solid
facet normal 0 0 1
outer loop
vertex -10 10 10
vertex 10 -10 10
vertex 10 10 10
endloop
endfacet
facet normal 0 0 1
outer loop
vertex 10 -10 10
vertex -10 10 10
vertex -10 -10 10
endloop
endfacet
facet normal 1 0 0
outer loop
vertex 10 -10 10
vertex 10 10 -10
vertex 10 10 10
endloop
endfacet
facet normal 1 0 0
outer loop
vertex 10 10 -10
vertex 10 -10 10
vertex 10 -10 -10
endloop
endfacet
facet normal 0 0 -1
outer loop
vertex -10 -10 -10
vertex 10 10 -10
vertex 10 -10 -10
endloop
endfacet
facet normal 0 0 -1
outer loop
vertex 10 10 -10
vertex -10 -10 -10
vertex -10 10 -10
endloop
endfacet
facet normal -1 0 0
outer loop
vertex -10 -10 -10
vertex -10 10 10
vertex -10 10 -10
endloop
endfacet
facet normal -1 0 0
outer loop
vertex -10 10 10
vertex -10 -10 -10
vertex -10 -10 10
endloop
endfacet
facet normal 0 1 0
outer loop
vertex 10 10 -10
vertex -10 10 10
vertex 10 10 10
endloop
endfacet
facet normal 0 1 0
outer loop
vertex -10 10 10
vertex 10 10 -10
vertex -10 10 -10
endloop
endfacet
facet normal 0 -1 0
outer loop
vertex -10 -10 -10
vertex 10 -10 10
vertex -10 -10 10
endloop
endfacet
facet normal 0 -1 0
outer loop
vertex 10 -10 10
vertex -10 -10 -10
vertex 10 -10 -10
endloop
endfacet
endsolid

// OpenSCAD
// Variable declarations
cube_size = 20; // Size of the cube
hole_diameter = 10; // Diameter of the hole
hole_depth = 5; // Depth of the hole

// Main model
translate([-cube_size/2, -cube_size/2, -cube_size/2]) // Center the model at origin
union() {
    // Cube
    cube(size = cube_size, center = false);
    
    // Hole in the top
    translate([cube_size/2, cube_size/2, cube_size - hole_depth/2])
    difference() {
        cylinder(h = hole_depth, d = hole_diameter, center = true);
        cylinder(h = hole_depth + 0.1, d = hole_diameter - 0.1, center = true); // To ensure the hole is open at the top
    }
}
